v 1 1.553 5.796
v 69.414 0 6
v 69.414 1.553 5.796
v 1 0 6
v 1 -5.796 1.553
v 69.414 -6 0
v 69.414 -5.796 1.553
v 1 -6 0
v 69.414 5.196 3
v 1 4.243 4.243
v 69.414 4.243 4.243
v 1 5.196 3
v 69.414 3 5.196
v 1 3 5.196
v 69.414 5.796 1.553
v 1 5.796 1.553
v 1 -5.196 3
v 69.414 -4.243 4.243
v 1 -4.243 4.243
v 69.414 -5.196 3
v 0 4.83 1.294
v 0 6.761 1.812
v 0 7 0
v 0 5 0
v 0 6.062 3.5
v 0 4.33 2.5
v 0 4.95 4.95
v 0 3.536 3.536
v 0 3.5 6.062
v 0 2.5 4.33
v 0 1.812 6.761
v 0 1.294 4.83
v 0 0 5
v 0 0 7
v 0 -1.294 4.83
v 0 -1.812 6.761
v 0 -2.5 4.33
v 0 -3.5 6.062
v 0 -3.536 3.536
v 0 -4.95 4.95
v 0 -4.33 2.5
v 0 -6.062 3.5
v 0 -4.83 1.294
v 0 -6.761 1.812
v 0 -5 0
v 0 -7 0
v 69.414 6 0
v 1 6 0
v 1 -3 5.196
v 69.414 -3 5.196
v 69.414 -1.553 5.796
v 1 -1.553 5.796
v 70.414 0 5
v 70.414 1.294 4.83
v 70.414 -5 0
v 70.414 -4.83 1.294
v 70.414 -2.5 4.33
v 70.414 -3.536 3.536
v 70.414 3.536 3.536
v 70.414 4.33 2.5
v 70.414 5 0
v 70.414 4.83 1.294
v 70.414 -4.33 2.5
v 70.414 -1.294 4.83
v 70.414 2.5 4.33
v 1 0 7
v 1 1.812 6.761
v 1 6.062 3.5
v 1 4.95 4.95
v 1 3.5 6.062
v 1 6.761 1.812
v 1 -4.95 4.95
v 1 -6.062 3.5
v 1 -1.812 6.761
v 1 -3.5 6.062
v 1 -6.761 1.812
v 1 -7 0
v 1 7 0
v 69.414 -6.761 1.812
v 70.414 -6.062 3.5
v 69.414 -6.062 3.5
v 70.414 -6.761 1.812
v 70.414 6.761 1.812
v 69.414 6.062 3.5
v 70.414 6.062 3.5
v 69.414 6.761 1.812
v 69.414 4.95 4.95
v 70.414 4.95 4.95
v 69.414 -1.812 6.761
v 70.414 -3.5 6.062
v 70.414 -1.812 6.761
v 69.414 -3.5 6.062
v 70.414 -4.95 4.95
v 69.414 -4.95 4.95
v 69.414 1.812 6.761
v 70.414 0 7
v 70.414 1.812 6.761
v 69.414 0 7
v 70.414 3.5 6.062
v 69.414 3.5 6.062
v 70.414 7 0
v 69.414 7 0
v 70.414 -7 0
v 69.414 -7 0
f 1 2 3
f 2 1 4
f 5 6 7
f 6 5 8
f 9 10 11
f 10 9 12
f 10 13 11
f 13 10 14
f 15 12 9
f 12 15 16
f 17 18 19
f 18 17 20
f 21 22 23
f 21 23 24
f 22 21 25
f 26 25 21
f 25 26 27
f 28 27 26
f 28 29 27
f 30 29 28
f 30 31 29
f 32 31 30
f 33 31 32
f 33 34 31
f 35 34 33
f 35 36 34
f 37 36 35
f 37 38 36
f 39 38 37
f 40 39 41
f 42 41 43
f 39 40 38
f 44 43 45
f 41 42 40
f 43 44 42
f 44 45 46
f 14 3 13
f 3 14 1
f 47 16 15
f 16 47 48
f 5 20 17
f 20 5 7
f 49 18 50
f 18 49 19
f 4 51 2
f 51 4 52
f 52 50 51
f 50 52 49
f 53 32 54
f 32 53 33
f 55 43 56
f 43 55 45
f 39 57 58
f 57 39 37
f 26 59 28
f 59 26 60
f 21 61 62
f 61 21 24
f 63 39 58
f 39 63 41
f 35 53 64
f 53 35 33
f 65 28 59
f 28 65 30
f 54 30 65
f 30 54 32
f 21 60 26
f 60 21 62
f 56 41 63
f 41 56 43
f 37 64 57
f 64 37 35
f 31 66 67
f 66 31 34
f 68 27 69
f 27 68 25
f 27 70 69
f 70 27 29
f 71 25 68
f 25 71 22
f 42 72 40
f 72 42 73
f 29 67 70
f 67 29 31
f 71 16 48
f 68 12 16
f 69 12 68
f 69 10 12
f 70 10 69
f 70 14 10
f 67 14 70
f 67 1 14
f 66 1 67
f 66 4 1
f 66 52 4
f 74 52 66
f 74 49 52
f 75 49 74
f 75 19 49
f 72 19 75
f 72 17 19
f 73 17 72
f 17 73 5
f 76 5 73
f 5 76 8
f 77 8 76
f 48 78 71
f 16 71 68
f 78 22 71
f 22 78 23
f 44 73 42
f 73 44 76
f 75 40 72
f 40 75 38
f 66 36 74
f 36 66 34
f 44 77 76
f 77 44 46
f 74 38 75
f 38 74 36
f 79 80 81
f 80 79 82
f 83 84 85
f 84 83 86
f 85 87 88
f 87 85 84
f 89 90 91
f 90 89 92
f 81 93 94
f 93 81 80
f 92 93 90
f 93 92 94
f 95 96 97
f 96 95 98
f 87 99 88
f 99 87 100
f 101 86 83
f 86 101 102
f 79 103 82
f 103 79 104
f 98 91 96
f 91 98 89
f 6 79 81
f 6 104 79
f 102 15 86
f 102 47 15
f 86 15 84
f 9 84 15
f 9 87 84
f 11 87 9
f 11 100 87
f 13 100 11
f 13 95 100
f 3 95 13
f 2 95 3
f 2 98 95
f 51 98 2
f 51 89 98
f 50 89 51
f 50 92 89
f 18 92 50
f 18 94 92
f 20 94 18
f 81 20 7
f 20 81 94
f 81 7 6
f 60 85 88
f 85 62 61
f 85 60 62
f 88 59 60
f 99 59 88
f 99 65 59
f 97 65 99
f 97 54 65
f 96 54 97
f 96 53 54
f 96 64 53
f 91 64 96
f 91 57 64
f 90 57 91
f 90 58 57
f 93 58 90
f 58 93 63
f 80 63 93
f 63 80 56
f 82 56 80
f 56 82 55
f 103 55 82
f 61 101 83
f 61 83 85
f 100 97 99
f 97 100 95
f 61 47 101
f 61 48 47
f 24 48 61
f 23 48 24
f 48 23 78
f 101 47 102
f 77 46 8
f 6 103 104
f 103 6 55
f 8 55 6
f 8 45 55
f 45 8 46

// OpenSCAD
// file: ../build_environments.scad
// build_environments.scad: modules to build level sections
//

module pool(diameter=10.0, wall_height=2.0, step_width=3.0, connections=[])
{
    difference() {
        union() {
        difference() {
            cylinder(h=0.5,r1=diameter+step_width,r2=diameter+step_width,$fn=48);
            translate([0,0,-0.1])
                cylinder(h=0.7,r1=diameter,r2=diameter,$fn=48);
        }
        difference() {
            cylinder(h=wall_height,r1=diameter+step_width+1.0,r2=diameter+step_width+1.0,$fn=48);
            translate([0,0,-0.1])
                cylinder(h=wall_height+0.2,r1=diameter+step_width,r2=diameter+step_width,$fn=48);
        }
        }
    
        for (c = connections)
        {
            rotate([0,90,0]) {
                angle = atan2(c[1],c[0]);
                rotate([-angle,0,0]) {
                    cylinder(h=diameter+5.0,r1=c[2],r2=c[2],$fn=48);
                }
            }
        }
    }
}

module straight(length=10.0, width=2.0, dy1=0.0, dy2=0.0, dz=0.0)
{
    dims = [0, 0, 0, 0, 0, (dz/length)];
    matrix = [
        [ 1, dims[0], dims[1], 0 ],
        [ dims[2], 1, dims[4], 0 ],
        [ dims[5], dims[3], 1, 0 ],
        [ 0, 0, 0, 1 ]
    ];
    multmatrix(matrix)
    difference() {
        translate([dy1,0,0])
        union() {
            rotate([0,90,0]) {
                difference() {
                    cylinder(h=(length-dy1-dy2),r1=width+1.0,r2=width+1.0,$fn=24);
                    translate([0,0,-0.1])
                        cylinder(h=(length-dy1-dy2+0.2),r1=width,r2=width,$fn=24);
                }
                difference() {
                    cylinder(h=1.0,r1=width+2.0,r2=width+2.0,$fn=24);
                    translate([0,0,-0.1])
                        cylinder(h=1.2,r1=width,r2=width,$fn=24);
                }
                translate([0,0,(length-dy1-dy2)-1.0]) {
                    difference() {
                        cylinder(h=1.0,r1=width+2.0,r2=width+2.0,$fn=24);
                        translate([0,0,-0.1])
                            cylinder(h=1.2,r1=width,r2=width,$fn=24);
                    }
                }
            }
        }
        translate([0,0,-(2*width+4.0)/2])
            cube([3*length,3*length,2*width+4.0],center=true);
    }
}

module curve(p0=[0,0], center=[0,0], dir=1, angle=0.0, width=2.0)
{
    radius = sqrt((p0[0]-center[0])*(p0[0]-center[0]) + (p0[1]-center[1])*(p0[1]-center[1]));
    if (dir == 0) {
        difference() {
            rotate([0,0,-90])
            difference() {
                rotate_extrude(angle = angle, convexity = 10, $fn=32)
                    translate([radius, 0, 0])
                        circle(r = width+1.0,$fn=24);
                rotate([0,0,-1.0])
                    rotate_extrude(angle = angle+2.0, convexity = 10, $fn=32)
                        translate([radius, 0, 0])
                            circle(r = width,$fn=24);
            }
            translate([0,0,-(2*width+4.0)/2])
                cube([5*radius,5*radius,2*width+4.0],center=true);
        }
    }
    else {
        difference() {
            rotate([0,0,90])
            difference() {
                rotate_extrude(angle = -angle, convexity = 10, $fn=32)
                    translate([radius, 0, 0])
                        circle(r = width+1.0,$fn=24);
                rotate([0,0,1.0])
                    rotate_extrude(angle = -angle-2.0, convexity = 10, $fn=32)
                        translate([radius, 0, 0])
                            circle(r = width,$fn=24);
            }
            translate([0,0,-(2*width+4.0)/2])
                cube([5*radius,5*radius,2*width+4.0],center=true);
        }
    }

}

// test pool
//pool(diameter=12.0000, wall_height=3.0000, step_width=3.0000, connections=[[0.0000,-26.0000,2.0000], [23.6074,0.0000,2.0000]]);

// test straight, slope
//straight(length=26.0000, width=2.0000, dy1=11.8322, dy2=6.7082, dz=0.0000);
//straight(length=29.1549, width=12.0000, dy1=0.0000, dy2=0.0000, dz=-15.0000);

// test curve
//curve(p0=[23.6074, 0.0000], center=[23.6074, 5.0000], dir=0, angle=60.1011, width=2.0000);
//curve(p0=[33.6426, 12.4219], center=[37.9771, 9.9295], dir=1, angle=120.4627, width=2.0000);
// main file
use <../build_environments.scad>;
straight(length=70.4142, width=5.0000, dy1=0.0000, dy2=0.0000, dz=0.0000);
